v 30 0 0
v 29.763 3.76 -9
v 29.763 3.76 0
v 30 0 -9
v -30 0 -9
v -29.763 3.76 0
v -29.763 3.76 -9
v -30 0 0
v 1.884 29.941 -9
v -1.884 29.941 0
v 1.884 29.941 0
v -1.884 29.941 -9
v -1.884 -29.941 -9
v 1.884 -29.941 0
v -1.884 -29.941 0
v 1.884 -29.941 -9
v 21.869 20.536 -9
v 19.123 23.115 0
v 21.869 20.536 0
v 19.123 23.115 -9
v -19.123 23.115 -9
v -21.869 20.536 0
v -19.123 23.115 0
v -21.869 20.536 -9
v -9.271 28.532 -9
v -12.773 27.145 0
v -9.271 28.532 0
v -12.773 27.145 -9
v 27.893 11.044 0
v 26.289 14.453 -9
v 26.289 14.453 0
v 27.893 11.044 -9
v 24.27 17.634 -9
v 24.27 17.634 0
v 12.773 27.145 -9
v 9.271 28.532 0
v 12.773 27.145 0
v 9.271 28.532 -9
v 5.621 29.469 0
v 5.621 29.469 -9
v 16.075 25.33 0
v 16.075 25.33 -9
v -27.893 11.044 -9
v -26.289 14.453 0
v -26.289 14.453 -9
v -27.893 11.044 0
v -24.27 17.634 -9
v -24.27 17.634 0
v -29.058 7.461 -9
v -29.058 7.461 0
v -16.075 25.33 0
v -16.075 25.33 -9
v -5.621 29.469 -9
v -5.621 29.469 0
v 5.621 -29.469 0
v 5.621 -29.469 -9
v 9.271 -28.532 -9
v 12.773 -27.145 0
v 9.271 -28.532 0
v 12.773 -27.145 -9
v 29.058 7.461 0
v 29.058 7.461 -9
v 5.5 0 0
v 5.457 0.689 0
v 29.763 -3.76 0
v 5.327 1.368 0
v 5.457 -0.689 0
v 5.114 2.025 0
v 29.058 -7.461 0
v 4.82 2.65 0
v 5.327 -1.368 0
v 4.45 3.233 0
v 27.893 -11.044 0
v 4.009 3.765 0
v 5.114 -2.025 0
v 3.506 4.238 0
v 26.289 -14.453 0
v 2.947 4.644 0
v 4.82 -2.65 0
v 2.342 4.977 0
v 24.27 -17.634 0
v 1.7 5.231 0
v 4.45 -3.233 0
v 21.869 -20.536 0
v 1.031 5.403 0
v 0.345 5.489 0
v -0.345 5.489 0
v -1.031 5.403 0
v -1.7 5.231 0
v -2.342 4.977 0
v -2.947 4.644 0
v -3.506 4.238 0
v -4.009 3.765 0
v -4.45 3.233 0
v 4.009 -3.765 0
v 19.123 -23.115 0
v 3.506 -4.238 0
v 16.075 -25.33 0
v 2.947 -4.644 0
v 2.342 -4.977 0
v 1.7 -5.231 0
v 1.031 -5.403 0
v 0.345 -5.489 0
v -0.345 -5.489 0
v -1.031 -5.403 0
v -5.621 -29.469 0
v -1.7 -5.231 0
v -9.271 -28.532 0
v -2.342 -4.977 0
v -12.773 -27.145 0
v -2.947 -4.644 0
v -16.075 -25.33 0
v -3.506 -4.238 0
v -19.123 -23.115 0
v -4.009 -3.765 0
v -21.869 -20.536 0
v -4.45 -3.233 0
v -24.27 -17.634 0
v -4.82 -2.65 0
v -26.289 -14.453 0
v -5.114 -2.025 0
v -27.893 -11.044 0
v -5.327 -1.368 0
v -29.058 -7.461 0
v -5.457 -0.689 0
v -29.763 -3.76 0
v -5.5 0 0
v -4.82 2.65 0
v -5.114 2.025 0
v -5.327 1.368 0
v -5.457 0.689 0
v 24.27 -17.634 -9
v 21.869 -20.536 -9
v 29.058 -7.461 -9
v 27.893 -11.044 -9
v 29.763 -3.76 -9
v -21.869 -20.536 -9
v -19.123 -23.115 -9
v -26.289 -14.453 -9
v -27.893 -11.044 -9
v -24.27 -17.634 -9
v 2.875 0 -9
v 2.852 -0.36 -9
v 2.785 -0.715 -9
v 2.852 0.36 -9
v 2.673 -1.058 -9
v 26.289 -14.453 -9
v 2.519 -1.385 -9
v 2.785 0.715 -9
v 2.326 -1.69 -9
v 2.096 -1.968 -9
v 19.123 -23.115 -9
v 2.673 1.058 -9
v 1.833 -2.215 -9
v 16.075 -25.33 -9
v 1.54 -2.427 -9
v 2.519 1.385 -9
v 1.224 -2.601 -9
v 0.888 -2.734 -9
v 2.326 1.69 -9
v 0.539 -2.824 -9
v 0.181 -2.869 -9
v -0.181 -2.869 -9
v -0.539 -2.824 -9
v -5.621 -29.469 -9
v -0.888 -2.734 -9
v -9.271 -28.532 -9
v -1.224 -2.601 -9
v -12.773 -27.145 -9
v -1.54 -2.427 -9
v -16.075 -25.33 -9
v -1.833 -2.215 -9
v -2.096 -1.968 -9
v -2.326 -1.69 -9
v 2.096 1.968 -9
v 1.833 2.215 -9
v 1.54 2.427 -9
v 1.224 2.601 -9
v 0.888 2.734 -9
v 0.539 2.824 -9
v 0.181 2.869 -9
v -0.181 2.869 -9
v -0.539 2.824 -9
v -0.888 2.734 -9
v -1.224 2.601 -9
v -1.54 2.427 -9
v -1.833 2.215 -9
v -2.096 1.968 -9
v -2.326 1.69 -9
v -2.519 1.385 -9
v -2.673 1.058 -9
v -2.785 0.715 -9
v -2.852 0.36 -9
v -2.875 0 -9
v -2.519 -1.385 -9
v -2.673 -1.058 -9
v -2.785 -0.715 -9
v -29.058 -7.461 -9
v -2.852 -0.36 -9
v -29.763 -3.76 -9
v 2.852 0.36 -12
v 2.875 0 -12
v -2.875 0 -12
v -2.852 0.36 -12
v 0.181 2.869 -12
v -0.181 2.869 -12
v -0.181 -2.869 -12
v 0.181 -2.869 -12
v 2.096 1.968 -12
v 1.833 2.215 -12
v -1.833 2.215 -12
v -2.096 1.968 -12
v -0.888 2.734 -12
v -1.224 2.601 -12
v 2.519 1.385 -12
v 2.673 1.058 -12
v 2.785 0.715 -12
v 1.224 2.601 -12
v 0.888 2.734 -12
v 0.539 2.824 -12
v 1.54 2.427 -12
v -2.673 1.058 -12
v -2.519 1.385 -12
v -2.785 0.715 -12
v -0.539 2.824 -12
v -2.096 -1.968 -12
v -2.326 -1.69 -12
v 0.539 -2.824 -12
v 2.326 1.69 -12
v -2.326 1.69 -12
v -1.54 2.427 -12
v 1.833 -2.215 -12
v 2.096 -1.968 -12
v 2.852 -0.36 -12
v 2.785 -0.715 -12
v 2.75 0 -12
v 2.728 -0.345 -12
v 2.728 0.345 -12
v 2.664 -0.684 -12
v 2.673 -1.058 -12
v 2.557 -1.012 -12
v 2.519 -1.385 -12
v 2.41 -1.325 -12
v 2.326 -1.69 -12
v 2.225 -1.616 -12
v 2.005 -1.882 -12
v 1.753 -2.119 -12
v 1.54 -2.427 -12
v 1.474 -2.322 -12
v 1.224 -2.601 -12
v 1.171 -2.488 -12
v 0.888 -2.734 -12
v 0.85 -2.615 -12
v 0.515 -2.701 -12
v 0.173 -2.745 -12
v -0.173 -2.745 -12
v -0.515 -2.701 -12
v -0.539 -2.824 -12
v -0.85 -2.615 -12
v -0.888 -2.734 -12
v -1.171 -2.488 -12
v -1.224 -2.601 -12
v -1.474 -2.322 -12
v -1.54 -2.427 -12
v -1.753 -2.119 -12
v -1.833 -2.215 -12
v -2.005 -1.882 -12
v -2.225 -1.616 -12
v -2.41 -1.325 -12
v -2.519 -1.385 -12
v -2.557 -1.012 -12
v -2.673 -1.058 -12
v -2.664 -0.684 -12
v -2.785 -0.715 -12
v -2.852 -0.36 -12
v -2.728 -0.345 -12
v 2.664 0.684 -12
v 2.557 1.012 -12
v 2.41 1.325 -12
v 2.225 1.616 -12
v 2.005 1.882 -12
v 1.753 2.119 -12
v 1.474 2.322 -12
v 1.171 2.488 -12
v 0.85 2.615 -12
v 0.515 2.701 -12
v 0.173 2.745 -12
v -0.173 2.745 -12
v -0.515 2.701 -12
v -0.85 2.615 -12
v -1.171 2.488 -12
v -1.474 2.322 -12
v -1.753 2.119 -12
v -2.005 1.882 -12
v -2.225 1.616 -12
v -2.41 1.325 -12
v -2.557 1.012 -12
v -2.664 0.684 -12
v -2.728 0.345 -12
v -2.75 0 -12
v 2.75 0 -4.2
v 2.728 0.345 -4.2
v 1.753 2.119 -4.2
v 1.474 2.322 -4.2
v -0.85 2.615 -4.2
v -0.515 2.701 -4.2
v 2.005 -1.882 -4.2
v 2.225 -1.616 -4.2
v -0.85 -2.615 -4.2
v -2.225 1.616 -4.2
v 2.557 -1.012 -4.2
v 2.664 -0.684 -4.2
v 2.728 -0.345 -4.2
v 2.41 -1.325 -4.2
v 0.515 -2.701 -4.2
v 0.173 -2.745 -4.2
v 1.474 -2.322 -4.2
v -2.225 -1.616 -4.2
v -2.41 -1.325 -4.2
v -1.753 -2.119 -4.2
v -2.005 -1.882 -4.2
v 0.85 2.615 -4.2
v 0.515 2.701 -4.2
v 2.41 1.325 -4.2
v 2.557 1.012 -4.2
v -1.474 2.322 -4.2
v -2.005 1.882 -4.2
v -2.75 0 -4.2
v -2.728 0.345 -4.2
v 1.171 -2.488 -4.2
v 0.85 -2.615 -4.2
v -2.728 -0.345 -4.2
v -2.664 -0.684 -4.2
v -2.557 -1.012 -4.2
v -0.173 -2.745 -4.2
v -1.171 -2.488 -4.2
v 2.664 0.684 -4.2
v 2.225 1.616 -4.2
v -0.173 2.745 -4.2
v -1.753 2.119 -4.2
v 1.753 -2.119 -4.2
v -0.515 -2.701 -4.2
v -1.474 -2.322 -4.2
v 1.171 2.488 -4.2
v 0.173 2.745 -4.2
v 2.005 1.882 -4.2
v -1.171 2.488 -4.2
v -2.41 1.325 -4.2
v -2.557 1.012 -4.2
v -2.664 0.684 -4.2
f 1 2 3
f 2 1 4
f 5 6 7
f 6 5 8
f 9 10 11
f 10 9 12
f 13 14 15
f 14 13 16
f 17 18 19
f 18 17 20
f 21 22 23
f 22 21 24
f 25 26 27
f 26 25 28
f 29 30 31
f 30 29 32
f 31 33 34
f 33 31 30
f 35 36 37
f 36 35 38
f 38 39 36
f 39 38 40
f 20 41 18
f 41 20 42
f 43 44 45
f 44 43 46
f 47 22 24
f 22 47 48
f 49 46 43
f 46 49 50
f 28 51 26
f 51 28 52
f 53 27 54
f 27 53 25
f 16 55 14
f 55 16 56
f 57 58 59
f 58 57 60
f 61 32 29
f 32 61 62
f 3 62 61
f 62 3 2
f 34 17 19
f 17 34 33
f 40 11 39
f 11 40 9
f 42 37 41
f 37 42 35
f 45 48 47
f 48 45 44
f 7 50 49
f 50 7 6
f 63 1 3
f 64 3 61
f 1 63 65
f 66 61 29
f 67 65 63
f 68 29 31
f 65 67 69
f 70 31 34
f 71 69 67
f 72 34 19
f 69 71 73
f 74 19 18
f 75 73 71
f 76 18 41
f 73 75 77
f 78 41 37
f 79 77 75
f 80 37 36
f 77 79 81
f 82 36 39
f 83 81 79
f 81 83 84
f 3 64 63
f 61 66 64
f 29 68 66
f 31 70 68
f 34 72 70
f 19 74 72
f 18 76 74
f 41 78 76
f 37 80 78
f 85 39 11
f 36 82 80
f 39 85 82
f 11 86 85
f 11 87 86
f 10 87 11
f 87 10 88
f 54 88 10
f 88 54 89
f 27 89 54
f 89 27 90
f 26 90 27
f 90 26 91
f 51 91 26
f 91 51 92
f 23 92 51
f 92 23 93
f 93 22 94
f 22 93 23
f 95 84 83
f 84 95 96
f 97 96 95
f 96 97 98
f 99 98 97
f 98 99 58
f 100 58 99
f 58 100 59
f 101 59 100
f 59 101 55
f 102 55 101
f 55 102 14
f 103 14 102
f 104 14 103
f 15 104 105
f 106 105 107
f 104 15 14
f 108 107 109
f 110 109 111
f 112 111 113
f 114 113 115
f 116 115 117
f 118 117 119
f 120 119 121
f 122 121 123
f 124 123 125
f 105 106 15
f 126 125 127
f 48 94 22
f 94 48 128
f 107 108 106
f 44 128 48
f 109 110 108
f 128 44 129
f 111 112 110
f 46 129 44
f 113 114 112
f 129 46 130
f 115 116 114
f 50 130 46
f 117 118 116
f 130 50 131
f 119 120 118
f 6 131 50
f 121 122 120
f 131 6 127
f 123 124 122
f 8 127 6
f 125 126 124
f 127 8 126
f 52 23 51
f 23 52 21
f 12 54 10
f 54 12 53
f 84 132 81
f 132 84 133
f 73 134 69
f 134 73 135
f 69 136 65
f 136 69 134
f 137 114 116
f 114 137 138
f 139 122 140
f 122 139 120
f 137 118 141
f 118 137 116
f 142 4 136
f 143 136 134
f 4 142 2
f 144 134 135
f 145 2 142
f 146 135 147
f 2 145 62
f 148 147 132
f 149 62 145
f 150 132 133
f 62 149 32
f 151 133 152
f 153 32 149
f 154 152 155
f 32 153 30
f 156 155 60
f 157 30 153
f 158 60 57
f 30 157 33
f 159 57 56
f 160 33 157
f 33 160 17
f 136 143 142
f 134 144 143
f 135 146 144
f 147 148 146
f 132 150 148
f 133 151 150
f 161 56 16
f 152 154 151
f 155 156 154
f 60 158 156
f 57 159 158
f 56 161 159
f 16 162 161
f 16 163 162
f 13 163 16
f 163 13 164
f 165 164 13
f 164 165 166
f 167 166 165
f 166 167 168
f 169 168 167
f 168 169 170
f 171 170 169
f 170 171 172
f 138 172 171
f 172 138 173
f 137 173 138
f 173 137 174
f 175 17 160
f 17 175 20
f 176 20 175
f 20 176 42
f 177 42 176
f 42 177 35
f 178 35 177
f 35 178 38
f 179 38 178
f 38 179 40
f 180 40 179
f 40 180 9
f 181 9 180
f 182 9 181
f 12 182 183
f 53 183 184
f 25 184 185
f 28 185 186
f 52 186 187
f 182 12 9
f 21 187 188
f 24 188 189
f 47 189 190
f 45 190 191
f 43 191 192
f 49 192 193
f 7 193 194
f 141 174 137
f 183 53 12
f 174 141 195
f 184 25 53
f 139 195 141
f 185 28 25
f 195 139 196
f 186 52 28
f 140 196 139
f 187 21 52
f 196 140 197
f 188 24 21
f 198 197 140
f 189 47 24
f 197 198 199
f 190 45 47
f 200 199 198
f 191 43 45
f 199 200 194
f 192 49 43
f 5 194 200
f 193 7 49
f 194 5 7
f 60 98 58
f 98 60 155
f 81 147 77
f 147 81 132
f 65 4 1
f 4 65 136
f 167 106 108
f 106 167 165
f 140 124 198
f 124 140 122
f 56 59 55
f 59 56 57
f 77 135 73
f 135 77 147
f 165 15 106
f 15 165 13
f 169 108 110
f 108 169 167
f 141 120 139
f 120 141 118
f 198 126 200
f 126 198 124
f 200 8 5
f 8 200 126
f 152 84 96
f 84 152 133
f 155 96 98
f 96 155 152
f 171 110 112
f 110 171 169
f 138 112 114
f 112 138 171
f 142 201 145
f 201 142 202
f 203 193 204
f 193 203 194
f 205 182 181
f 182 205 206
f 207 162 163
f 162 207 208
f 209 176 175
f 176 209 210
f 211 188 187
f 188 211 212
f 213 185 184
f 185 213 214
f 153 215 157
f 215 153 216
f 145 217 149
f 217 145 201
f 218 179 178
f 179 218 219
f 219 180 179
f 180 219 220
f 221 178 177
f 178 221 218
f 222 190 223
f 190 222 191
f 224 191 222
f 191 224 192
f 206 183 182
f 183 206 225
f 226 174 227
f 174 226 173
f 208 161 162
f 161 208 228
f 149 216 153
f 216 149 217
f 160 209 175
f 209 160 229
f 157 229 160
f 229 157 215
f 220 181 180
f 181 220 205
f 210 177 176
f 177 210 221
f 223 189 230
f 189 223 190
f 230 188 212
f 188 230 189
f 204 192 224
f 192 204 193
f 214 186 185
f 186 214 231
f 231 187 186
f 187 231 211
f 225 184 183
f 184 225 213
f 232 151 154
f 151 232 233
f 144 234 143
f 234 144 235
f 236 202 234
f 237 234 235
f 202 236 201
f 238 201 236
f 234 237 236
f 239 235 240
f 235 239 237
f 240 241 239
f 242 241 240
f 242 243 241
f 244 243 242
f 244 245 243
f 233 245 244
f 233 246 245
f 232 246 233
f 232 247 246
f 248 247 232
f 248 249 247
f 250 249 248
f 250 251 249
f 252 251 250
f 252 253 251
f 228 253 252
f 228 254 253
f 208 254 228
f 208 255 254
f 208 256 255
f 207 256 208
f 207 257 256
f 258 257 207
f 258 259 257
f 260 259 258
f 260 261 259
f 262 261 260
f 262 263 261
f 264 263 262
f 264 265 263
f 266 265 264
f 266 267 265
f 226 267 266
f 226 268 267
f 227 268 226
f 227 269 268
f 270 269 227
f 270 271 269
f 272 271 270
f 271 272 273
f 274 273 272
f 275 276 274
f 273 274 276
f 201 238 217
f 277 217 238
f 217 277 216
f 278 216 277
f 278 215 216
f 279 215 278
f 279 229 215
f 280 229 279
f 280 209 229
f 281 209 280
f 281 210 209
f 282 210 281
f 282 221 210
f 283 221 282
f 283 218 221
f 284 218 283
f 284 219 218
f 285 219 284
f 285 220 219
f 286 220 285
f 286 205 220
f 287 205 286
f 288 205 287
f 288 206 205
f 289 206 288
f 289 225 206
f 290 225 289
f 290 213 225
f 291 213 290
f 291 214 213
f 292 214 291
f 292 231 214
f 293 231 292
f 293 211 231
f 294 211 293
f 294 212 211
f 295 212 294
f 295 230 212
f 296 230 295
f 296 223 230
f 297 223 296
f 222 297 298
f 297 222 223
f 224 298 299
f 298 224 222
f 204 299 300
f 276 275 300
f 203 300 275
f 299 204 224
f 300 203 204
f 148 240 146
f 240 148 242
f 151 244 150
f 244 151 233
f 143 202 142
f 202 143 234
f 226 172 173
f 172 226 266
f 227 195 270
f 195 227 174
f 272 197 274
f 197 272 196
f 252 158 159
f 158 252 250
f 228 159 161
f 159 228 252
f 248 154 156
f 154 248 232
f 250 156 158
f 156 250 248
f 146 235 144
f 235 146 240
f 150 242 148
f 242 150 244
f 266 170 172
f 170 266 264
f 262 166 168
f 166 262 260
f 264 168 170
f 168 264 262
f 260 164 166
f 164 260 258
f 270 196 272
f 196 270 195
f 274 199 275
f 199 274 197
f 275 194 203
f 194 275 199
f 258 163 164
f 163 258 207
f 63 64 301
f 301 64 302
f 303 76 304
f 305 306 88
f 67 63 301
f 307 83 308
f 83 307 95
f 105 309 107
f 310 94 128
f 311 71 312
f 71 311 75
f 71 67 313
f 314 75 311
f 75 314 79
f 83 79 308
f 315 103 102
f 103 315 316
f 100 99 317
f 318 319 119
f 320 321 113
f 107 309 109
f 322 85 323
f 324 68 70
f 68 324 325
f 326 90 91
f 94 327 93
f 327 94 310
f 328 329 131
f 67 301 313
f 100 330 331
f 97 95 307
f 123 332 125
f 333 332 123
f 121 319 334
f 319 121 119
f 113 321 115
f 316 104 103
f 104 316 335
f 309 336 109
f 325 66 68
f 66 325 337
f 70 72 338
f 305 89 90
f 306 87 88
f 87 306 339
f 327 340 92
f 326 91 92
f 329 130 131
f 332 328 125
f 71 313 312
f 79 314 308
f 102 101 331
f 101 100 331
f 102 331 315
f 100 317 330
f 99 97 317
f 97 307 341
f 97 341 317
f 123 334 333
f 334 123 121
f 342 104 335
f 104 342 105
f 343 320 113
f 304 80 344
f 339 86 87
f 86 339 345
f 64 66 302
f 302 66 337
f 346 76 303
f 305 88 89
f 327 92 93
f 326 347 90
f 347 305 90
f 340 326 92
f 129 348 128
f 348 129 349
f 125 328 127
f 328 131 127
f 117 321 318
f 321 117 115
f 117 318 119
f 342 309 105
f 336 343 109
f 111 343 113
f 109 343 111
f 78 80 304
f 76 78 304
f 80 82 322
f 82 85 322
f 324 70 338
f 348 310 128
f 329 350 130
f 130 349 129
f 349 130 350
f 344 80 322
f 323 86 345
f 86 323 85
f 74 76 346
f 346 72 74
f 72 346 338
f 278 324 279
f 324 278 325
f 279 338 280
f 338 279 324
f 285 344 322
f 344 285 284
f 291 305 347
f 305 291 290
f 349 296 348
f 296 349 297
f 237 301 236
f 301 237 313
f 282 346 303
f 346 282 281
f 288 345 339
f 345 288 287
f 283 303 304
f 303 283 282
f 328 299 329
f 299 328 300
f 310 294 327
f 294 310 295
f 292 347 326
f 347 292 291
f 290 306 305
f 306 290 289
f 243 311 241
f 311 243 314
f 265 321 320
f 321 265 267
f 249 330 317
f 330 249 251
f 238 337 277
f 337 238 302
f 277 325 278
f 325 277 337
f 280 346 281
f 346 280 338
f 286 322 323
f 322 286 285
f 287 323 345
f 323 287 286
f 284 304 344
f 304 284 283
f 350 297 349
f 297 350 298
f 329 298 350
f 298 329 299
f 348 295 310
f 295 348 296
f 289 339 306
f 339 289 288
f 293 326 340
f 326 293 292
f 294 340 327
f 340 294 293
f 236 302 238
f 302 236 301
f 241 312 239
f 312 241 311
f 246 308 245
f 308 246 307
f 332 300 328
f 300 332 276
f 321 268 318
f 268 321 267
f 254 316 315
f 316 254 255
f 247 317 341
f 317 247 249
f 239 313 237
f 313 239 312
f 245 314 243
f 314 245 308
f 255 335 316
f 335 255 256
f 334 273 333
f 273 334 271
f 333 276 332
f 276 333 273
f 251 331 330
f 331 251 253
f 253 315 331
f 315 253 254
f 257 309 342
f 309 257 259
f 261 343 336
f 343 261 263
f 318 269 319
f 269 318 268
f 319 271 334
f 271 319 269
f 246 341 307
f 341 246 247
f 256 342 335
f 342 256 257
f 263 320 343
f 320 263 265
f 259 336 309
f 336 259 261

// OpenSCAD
$fn = 50;


difference() {
	union() {
		translate(v = [0, 0, -9.0000000000]) {
			cylinder(h = 9, r = 30.0000000000);
		}
		translate(v = [0, 0, -12.0000000000]) {
			cylinder(h = 12, r = 2.8750000000);
		}
	}
	union() {
		translate(v = [0, 0, 0]) {
			rotate(a = [0, 0, 0]) {
				difference() {
					union() {
						translate(v = [0, 0, -12.0000000000]) {
							cylinder(h = 12, r = 2.2500000000);
						}
						translate(v = [0, 0, -4.2000000000]) {
							cylinder(h = 4.2000000000, r1 = 2.7500000000, r2 = 5.5000000000);
						}
						translate(v = [0, 0, -12.0000000000]) {
							cylinder(h = 12, r = 2.7500000000);
						}
						translate(v = [0, 0, -12.0000000000]) {
							cylinder(h = 12, r = 2.2500000000);
						}
					}
					union();
				}
			}
		}
	}
}
